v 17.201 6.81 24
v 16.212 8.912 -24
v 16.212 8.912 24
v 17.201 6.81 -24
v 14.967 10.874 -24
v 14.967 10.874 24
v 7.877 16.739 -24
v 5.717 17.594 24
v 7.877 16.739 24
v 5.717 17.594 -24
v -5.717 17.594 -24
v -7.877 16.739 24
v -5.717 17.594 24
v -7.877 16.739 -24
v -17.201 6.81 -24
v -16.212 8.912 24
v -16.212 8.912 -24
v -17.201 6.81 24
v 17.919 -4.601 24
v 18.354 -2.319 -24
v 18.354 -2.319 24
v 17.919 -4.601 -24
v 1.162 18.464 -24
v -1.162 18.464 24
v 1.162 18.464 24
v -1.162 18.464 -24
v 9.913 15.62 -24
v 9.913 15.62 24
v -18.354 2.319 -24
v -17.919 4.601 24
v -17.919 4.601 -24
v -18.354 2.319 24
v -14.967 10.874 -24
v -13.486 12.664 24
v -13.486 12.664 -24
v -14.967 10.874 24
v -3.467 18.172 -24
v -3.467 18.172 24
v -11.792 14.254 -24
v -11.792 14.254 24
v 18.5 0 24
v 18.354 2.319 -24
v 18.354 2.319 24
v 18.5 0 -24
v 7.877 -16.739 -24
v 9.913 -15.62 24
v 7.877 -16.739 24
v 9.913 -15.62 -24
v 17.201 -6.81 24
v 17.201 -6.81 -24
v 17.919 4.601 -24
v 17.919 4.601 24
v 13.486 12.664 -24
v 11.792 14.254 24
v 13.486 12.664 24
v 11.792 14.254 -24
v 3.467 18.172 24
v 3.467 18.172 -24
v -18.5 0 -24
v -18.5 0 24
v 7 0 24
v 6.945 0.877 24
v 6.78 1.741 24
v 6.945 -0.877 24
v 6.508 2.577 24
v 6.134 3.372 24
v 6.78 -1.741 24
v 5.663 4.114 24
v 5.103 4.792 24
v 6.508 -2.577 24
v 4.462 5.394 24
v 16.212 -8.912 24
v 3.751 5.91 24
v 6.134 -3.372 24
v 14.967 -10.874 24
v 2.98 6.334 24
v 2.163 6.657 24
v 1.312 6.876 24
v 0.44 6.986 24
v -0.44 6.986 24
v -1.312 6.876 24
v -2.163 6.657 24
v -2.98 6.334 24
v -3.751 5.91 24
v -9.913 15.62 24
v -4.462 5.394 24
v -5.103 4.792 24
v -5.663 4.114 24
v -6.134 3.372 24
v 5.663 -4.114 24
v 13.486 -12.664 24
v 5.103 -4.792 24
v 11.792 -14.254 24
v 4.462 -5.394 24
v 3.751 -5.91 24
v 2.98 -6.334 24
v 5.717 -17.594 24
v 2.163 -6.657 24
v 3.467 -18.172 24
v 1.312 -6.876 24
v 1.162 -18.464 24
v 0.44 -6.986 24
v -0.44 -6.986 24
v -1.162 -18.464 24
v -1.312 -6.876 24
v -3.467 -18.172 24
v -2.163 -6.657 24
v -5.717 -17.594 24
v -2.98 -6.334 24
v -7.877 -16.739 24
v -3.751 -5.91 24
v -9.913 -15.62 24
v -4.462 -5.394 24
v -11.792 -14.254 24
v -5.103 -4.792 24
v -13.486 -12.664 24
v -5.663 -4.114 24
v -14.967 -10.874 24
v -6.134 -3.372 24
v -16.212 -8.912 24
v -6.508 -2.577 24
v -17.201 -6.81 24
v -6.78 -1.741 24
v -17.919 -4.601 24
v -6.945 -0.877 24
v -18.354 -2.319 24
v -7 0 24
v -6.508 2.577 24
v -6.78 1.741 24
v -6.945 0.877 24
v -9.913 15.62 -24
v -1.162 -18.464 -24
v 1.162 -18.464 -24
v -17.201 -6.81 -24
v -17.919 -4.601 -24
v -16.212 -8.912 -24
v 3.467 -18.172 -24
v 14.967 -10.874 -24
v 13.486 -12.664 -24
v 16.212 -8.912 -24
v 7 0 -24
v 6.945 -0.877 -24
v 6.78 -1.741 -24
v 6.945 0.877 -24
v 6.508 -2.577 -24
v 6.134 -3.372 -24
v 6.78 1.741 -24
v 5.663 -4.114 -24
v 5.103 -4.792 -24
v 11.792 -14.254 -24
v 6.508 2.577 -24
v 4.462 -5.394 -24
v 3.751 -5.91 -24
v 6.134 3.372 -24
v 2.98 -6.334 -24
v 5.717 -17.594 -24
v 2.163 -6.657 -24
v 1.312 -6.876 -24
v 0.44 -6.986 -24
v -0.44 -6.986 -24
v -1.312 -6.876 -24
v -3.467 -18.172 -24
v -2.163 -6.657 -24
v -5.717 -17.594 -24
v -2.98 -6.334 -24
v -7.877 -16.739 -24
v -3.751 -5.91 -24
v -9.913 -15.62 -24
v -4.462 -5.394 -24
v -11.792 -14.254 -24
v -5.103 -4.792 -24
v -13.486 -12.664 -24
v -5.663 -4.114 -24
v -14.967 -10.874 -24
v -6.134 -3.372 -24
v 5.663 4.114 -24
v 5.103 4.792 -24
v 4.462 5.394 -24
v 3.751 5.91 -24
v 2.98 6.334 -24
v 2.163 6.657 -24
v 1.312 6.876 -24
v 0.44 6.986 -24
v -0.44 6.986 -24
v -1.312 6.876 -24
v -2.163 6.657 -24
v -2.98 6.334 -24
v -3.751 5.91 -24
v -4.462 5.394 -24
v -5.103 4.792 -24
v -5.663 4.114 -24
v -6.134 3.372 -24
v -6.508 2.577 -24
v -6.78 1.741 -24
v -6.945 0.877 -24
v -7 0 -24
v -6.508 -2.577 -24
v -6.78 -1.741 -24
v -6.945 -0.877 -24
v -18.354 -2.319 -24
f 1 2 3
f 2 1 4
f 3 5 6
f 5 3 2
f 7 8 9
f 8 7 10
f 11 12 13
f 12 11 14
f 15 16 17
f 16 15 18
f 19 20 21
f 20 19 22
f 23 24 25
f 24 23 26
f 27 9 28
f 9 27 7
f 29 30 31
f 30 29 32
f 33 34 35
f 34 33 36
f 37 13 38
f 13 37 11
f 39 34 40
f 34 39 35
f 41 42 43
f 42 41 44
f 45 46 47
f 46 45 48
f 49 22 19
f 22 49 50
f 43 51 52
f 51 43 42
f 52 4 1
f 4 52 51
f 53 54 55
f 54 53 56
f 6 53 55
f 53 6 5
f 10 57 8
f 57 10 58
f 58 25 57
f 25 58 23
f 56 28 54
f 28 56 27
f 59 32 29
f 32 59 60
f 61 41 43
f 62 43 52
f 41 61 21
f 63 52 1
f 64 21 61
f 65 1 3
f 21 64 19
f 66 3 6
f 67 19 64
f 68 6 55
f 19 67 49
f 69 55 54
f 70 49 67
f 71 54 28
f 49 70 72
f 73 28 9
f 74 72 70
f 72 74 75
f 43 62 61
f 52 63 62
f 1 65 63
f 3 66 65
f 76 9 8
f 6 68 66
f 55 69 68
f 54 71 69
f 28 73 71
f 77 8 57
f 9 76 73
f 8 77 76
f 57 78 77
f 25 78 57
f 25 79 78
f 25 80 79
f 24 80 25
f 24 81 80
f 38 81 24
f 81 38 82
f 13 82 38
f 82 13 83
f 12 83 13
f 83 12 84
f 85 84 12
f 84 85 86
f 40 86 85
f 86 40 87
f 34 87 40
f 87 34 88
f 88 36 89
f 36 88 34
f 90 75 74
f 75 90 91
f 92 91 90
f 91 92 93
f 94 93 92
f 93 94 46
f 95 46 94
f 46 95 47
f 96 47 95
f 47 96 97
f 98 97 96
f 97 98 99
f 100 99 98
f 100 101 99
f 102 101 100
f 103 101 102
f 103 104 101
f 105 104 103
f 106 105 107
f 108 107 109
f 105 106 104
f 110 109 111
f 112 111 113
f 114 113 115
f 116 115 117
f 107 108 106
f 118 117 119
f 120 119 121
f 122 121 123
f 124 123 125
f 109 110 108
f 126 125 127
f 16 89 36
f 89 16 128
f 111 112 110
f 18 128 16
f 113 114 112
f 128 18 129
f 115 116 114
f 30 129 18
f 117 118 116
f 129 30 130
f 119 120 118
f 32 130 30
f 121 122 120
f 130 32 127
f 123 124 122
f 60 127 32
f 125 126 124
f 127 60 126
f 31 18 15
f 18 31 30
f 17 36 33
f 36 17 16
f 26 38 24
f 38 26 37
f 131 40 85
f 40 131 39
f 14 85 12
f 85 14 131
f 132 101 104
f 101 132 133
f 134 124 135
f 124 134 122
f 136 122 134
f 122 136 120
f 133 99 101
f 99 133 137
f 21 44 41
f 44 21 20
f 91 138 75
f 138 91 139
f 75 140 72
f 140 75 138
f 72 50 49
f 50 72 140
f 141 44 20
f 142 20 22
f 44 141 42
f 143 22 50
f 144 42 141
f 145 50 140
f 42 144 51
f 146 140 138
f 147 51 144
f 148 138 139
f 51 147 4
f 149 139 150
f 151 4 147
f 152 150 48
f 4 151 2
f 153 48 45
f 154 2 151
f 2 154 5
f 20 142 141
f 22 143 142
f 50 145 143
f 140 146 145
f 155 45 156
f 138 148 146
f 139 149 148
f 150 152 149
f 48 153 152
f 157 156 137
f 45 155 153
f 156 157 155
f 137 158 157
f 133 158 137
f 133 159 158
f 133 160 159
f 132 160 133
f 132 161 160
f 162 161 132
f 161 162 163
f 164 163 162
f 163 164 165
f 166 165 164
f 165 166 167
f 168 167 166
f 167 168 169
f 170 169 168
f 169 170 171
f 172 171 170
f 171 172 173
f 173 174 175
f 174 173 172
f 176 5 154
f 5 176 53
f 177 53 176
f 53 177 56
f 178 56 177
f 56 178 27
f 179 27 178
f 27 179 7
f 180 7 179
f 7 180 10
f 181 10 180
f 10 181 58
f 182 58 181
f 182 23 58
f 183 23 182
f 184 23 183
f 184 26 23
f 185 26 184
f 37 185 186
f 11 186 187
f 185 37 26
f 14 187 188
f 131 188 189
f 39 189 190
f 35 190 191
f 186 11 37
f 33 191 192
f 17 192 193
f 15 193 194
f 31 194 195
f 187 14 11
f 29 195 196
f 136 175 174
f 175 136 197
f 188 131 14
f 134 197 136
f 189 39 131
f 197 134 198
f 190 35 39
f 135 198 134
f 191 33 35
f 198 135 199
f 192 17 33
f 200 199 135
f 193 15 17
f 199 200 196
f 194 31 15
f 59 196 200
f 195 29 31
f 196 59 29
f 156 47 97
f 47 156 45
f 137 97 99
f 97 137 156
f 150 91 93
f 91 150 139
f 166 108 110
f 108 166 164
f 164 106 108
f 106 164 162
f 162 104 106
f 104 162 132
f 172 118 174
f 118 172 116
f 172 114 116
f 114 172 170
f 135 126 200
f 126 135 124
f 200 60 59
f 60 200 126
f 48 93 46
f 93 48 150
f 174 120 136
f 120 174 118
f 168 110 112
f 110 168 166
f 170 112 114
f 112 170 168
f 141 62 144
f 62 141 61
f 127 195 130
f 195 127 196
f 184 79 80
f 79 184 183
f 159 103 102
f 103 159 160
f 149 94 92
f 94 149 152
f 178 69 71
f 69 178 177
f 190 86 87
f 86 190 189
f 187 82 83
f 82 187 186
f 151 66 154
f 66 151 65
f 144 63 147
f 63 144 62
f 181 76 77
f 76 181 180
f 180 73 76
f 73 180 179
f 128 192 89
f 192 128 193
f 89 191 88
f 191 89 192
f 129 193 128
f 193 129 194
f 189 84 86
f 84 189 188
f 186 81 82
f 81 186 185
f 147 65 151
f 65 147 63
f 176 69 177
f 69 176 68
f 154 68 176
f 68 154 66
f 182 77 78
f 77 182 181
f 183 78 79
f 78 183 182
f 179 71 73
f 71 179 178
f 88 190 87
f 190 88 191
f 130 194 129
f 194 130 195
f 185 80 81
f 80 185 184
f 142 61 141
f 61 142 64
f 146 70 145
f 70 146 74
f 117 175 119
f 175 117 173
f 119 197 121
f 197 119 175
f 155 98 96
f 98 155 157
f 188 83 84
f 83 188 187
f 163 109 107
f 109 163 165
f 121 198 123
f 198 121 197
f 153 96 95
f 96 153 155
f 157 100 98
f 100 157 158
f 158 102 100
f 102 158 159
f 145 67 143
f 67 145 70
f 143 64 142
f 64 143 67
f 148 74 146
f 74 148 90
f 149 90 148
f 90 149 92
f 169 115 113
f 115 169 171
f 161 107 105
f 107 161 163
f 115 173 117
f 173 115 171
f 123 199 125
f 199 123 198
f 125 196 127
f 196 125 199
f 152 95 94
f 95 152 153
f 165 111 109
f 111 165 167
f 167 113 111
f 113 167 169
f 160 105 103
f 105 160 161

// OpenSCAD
$fn = 50;


difference() {
	union() {
		translate(v = [0, 0, -24.0000000000]) {
			cylinder(h = 48, r = 18.5000000000);
		}
	}
	union() {
		translate(v = [0, 0, -100.0000000000]) {
			cylinder(h = 200, r = 7);
		}
	}
}
